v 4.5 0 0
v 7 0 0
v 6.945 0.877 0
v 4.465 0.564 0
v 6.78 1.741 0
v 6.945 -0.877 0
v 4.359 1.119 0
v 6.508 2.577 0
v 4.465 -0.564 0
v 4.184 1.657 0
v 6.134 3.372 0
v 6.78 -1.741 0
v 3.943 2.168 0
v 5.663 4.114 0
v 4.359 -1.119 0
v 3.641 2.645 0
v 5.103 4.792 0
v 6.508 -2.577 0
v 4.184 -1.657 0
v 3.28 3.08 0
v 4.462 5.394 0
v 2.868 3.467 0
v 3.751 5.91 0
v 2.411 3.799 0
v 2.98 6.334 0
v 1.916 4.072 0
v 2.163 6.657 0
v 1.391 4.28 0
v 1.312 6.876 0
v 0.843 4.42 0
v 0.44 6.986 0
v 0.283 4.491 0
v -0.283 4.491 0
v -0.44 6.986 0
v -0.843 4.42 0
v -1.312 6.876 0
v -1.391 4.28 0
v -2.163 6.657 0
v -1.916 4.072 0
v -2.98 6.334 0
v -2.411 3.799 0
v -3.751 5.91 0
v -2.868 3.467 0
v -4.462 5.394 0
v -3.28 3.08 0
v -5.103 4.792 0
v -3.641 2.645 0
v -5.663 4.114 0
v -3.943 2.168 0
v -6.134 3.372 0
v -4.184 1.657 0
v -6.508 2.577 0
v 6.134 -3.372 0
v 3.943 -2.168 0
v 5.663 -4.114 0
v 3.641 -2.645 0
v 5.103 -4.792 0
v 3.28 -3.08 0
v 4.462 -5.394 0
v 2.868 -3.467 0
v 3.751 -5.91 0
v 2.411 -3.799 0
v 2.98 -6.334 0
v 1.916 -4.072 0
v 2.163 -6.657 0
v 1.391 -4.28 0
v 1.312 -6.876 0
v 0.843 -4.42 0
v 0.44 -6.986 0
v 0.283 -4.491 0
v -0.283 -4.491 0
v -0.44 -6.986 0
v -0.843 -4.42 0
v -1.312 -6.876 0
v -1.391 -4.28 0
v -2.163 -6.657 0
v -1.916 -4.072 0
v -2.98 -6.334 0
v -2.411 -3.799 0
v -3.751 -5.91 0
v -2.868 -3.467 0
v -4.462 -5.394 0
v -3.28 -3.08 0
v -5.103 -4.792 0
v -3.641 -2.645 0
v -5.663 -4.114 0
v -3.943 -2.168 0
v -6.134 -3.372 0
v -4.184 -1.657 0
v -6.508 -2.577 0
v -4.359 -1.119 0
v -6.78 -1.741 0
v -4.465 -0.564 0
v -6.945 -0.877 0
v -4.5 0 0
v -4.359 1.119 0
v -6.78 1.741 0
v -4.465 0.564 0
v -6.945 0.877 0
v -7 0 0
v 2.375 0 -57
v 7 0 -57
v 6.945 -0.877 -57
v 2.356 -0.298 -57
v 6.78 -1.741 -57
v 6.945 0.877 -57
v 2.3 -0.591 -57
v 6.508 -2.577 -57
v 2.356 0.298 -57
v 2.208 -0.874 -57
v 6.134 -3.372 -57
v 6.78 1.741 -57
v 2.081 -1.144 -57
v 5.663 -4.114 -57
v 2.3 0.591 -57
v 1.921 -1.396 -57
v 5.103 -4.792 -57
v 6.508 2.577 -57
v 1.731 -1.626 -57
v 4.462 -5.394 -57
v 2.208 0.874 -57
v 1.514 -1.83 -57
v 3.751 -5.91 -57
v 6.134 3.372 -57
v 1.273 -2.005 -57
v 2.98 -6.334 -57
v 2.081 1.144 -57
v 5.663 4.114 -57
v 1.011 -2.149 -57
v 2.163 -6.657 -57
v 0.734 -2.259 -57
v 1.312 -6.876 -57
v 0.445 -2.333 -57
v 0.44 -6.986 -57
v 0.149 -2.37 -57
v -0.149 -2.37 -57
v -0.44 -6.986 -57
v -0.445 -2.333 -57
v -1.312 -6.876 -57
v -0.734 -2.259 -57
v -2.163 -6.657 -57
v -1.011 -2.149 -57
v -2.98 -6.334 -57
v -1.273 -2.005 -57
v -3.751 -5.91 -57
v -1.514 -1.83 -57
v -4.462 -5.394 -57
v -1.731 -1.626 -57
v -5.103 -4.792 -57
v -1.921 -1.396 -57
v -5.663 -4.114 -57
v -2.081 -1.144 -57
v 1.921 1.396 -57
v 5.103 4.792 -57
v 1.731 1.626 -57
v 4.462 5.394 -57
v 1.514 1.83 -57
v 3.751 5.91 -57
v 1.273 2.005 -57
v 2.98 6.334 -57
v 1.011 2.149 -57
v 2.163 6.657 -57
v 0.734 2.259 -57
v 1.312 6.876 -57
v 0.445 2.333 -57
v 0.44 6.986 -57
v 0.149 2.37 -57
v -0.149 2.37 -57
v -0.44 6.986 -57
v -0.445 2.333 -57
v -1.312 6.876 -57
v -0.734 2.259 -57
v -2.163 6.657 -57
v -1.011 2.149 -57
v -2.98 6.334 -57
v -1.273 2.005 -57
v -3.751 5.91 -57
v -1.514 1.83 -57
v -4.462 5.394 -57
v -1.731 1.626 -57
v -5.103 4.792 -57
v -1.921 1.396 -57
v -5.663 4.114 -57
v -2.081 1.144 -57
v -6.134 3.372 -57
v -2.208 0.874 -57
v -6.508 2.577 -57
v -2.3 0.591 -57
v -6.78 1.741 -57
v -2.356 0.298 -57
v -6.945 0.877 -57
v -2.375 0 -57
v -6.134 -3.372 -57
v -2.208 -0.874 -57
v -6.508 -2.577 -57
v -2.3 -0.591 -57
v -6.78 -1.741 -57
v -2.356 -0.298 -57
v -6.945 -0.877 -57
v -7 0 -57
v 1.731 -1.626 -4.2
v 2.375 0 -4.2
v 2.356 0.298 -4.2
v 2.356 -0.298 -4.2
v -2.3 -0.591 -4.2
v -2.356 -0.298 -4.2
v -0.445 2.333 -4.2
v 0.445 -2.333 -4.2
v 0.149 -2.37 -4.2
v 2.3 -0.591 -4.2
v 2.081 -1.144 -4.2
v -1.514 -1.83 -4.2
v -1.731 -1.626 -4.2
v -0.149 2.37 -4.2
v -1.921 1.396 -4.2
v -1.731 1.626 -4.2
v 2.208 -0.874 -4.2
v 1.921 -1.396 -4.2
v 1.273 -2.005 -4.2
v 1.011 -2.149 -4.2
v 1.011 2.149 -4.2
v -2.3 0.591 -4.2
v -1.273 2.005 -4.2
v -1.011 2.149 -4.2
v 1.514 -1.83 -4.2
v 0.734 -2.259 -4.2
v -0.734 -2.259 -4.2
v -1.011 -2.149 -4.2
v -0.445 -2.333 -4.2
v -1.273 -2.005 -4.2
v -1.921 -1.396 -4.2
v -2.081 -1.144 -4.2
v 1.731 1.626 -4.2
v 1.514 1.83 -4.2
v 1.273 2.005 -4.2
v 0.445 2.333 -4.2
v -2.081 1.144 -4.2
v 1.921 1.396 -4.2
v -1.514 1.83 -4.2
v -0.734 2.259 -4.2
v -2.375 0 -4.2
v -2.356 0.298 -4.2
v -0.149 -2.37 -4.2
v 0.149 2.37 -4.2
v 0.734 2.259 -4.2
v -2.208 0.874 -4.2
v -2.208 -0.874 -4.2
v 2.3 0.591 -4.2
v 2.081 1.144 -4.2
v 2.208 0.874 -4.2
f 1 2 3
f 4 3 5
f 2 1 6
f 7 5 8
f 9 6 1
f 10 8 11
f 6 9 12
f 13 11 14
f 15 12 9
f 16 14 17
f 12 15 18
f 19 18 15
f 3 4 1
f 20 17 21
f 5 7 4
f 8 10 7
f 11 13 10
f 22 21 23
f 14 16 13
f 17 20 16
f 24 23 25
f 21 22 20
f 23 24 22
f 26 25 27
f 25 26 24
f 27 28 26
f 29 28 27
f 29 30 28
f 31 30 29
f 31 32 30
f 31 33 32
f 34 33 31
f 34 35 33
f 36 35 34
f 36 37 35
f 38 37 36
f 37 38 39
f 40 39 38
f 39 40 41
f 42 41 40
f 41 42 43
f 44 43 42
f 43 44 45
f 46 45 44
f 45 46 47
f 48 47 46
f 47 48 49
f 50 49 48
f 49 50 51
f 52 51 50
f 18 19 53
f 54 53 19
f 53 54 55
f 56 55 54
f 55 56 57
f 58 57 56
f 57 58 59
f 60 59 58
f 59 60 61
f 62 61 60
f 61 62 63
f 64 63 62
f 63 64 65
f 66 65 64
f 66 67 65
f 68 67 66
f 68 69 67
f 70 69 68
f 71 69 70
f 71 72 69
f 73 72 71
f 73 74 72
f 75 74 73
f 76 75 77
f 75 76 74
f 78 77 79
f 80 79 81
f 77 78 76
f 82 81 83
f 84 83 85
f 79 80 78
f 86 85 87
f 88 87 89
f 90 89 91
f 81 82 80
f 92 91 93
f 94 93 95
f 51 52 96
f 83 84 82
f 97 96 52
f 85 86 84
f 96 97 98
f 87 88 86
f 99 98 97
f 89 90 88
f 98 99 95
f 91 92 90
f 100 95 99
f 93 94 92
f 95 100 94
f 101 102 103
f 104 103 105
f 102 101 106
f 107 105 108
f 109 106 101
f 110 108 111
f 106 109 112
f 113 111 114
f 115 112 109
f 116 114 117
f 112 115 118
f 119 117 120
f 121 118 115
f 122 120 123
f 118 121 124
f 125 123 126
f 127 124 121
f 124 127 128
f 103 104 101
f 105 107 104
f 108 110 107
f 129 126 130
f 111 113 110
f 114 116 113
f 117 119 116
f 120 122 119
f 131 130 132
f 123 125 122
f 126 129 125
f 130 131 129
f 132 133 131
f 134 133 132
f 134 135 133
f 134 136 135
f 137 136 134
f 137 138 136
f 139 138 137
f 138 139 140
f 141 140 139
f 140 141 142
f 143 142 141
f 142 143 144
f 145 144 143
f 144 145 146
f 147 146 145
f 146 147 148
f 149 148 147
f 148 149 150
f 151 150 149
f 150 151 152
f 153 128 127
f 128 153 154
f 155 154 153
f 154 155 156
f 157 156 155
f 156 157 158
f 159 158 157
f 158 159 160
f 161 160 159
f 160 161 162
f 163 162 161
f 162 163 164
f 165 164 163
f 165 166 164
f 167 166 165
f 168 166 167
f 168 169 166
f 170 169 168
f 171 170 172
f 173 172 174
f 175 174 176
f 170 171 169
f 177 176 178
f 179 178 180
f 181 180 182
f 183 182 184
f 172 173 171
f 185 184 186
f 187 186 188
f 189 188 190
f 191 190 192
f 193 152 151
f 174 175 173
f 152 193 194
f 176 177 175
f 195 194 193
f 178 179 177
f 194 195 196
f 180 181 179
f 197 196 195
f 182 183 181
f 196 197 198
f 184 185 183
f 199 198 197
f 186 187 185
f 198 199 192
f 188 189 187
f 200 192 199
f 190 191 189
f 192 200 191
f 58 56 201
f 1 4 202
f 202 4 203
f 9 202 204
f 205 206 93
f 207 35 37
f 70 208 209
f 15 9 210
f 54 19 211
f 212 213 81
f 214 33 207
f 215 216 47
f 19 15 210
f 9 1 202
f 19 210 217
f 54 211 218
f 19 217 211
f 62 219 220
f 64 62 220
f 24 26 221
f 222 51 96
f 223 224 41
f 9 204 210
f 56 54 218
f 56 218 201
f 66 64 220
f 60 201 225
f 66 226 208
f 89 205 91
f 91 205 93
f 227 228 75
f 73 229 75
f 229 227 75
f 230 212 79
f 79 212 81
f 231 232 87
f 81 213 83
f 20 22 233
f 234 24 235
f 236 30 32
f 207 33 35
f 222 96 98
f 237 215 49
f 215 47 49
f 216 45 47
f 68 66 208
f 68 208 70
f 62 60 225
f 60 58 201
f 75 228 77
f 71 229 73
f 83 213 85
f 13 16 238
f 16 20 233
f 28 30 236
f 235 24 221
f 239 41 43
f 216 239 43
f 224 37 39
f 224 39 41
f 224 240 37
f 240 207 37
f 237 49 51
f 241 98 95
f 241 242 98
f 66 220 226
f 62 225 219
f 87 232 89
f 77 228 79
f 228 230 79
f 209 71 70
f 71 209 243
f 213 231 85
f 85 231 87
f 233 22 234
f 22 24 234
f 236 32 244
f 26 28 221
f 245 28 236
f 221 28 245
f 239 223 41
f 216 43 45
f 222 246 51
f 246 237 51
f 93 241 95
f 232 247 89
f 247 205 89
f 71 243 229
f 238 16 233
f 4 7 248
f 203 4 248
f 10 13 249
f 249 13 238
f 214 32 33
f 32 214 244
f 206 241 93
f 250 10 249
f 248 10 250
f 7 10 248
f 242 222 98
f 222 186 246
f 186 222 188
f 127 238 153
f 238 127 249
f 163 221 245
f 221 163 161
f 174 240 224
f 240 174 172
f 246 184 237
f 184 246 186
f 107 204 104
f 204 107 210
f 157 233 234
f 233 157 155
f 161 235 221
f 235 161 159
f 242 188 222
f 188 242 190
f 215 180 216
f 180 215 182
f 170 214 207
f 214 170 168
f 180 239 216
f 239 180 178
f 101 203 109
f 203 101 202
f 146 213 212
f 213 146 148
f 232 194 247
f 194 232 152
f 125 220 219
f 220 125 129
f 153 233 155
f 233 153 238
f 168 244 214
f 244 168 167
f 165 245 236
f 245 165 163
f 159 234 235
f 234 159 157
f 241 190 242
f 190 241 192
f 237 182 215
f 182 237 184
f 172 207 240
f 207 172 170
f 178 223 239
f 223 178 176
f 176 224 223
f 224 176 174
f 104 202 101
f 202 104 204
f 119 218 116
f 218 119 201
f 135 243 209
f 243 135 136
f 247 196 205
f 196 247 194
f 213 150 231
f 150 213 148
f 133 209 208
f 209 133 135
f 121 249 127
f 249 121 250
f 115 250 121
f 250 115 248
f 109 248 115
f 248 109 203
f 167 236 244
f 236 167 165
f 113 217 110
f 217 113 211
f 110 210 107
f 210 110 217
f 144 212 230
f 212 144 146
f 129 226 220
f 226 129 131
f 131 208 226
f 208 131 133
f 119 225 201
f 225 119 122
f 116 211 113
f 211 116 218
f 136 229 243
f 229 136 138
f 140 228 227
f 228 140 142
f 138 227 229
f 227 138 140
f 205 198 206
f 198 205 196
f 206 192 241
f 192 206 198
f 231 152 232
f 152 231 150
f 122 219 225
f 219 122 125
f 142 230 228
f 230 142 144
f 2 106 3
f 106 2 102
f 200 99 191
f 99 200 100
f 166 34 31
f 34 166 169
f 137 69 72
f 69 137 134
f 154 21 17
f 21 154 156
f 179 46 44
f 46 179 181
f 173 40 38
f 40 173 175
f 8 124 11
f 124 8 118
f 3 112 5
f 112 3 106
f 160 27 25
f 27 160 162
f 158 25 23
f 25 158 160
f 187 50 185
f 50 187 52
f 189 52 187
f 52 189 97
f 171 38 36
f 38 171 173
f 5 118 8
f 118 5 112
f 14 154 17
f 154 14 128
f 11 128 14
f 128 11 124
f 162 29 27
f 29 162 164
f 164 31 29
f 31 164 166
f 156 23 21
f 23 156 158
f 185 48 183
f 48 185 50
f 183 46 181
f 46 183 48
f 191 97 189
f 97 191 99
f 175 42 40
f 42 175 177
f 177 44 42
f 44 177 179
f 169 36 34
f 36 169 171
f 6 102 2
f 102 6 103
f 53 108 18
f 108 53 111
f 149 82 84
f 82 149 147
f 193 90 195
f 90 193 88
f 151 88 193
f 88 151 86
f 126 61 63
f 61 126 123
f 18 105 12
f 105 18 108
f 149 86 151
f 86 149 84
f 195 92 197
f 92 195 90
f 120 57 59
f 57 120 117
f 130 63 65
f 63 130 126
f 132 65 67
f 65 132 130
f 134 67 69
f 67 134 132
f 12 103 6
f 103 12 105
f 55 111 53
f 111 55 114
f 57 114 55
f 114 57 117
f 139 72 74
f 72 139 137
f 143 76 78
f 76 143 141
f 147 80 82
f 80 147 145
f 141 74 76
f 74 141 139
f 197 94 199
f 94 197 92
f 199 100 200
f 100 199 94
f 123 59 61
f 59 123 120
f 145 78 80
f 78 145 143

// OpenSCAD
$fn = 50;


difference() {
	union() {
		translate(v = [0, 0, -57.0000000000]) {
			cylinder(h = 57, r = 7.0000000000);
		}
		cylinder(h = 0, r = 10.0000000000);
	}
	union() {
		translate(v = [0, 0, 0]) {
			rotate(a = [0, 0, 0]) {
				difference() {
					union() {
						#translate(v = [0, 0, -57.0000000000]) {
							cylinder(h = 57, r = 2.2500000000);
						}
						#translate(v = [0, 0, -4.2000000000]) {
							cylinder(h = 4.2000000000, r1 = 2.3750000000, r2 = 4.5000000000);
						}
						#translate(v = [0, 0, -57.0000000000]) {
							cylinder(h = 57, r = 2.3750000000);
						}
						#translate(v = [0, 0, -57.0000000000]) {
							cylinder(h = 57, r = 2.2500000000);
						}
					}
					union();
				}
			}
		}
	}
}
